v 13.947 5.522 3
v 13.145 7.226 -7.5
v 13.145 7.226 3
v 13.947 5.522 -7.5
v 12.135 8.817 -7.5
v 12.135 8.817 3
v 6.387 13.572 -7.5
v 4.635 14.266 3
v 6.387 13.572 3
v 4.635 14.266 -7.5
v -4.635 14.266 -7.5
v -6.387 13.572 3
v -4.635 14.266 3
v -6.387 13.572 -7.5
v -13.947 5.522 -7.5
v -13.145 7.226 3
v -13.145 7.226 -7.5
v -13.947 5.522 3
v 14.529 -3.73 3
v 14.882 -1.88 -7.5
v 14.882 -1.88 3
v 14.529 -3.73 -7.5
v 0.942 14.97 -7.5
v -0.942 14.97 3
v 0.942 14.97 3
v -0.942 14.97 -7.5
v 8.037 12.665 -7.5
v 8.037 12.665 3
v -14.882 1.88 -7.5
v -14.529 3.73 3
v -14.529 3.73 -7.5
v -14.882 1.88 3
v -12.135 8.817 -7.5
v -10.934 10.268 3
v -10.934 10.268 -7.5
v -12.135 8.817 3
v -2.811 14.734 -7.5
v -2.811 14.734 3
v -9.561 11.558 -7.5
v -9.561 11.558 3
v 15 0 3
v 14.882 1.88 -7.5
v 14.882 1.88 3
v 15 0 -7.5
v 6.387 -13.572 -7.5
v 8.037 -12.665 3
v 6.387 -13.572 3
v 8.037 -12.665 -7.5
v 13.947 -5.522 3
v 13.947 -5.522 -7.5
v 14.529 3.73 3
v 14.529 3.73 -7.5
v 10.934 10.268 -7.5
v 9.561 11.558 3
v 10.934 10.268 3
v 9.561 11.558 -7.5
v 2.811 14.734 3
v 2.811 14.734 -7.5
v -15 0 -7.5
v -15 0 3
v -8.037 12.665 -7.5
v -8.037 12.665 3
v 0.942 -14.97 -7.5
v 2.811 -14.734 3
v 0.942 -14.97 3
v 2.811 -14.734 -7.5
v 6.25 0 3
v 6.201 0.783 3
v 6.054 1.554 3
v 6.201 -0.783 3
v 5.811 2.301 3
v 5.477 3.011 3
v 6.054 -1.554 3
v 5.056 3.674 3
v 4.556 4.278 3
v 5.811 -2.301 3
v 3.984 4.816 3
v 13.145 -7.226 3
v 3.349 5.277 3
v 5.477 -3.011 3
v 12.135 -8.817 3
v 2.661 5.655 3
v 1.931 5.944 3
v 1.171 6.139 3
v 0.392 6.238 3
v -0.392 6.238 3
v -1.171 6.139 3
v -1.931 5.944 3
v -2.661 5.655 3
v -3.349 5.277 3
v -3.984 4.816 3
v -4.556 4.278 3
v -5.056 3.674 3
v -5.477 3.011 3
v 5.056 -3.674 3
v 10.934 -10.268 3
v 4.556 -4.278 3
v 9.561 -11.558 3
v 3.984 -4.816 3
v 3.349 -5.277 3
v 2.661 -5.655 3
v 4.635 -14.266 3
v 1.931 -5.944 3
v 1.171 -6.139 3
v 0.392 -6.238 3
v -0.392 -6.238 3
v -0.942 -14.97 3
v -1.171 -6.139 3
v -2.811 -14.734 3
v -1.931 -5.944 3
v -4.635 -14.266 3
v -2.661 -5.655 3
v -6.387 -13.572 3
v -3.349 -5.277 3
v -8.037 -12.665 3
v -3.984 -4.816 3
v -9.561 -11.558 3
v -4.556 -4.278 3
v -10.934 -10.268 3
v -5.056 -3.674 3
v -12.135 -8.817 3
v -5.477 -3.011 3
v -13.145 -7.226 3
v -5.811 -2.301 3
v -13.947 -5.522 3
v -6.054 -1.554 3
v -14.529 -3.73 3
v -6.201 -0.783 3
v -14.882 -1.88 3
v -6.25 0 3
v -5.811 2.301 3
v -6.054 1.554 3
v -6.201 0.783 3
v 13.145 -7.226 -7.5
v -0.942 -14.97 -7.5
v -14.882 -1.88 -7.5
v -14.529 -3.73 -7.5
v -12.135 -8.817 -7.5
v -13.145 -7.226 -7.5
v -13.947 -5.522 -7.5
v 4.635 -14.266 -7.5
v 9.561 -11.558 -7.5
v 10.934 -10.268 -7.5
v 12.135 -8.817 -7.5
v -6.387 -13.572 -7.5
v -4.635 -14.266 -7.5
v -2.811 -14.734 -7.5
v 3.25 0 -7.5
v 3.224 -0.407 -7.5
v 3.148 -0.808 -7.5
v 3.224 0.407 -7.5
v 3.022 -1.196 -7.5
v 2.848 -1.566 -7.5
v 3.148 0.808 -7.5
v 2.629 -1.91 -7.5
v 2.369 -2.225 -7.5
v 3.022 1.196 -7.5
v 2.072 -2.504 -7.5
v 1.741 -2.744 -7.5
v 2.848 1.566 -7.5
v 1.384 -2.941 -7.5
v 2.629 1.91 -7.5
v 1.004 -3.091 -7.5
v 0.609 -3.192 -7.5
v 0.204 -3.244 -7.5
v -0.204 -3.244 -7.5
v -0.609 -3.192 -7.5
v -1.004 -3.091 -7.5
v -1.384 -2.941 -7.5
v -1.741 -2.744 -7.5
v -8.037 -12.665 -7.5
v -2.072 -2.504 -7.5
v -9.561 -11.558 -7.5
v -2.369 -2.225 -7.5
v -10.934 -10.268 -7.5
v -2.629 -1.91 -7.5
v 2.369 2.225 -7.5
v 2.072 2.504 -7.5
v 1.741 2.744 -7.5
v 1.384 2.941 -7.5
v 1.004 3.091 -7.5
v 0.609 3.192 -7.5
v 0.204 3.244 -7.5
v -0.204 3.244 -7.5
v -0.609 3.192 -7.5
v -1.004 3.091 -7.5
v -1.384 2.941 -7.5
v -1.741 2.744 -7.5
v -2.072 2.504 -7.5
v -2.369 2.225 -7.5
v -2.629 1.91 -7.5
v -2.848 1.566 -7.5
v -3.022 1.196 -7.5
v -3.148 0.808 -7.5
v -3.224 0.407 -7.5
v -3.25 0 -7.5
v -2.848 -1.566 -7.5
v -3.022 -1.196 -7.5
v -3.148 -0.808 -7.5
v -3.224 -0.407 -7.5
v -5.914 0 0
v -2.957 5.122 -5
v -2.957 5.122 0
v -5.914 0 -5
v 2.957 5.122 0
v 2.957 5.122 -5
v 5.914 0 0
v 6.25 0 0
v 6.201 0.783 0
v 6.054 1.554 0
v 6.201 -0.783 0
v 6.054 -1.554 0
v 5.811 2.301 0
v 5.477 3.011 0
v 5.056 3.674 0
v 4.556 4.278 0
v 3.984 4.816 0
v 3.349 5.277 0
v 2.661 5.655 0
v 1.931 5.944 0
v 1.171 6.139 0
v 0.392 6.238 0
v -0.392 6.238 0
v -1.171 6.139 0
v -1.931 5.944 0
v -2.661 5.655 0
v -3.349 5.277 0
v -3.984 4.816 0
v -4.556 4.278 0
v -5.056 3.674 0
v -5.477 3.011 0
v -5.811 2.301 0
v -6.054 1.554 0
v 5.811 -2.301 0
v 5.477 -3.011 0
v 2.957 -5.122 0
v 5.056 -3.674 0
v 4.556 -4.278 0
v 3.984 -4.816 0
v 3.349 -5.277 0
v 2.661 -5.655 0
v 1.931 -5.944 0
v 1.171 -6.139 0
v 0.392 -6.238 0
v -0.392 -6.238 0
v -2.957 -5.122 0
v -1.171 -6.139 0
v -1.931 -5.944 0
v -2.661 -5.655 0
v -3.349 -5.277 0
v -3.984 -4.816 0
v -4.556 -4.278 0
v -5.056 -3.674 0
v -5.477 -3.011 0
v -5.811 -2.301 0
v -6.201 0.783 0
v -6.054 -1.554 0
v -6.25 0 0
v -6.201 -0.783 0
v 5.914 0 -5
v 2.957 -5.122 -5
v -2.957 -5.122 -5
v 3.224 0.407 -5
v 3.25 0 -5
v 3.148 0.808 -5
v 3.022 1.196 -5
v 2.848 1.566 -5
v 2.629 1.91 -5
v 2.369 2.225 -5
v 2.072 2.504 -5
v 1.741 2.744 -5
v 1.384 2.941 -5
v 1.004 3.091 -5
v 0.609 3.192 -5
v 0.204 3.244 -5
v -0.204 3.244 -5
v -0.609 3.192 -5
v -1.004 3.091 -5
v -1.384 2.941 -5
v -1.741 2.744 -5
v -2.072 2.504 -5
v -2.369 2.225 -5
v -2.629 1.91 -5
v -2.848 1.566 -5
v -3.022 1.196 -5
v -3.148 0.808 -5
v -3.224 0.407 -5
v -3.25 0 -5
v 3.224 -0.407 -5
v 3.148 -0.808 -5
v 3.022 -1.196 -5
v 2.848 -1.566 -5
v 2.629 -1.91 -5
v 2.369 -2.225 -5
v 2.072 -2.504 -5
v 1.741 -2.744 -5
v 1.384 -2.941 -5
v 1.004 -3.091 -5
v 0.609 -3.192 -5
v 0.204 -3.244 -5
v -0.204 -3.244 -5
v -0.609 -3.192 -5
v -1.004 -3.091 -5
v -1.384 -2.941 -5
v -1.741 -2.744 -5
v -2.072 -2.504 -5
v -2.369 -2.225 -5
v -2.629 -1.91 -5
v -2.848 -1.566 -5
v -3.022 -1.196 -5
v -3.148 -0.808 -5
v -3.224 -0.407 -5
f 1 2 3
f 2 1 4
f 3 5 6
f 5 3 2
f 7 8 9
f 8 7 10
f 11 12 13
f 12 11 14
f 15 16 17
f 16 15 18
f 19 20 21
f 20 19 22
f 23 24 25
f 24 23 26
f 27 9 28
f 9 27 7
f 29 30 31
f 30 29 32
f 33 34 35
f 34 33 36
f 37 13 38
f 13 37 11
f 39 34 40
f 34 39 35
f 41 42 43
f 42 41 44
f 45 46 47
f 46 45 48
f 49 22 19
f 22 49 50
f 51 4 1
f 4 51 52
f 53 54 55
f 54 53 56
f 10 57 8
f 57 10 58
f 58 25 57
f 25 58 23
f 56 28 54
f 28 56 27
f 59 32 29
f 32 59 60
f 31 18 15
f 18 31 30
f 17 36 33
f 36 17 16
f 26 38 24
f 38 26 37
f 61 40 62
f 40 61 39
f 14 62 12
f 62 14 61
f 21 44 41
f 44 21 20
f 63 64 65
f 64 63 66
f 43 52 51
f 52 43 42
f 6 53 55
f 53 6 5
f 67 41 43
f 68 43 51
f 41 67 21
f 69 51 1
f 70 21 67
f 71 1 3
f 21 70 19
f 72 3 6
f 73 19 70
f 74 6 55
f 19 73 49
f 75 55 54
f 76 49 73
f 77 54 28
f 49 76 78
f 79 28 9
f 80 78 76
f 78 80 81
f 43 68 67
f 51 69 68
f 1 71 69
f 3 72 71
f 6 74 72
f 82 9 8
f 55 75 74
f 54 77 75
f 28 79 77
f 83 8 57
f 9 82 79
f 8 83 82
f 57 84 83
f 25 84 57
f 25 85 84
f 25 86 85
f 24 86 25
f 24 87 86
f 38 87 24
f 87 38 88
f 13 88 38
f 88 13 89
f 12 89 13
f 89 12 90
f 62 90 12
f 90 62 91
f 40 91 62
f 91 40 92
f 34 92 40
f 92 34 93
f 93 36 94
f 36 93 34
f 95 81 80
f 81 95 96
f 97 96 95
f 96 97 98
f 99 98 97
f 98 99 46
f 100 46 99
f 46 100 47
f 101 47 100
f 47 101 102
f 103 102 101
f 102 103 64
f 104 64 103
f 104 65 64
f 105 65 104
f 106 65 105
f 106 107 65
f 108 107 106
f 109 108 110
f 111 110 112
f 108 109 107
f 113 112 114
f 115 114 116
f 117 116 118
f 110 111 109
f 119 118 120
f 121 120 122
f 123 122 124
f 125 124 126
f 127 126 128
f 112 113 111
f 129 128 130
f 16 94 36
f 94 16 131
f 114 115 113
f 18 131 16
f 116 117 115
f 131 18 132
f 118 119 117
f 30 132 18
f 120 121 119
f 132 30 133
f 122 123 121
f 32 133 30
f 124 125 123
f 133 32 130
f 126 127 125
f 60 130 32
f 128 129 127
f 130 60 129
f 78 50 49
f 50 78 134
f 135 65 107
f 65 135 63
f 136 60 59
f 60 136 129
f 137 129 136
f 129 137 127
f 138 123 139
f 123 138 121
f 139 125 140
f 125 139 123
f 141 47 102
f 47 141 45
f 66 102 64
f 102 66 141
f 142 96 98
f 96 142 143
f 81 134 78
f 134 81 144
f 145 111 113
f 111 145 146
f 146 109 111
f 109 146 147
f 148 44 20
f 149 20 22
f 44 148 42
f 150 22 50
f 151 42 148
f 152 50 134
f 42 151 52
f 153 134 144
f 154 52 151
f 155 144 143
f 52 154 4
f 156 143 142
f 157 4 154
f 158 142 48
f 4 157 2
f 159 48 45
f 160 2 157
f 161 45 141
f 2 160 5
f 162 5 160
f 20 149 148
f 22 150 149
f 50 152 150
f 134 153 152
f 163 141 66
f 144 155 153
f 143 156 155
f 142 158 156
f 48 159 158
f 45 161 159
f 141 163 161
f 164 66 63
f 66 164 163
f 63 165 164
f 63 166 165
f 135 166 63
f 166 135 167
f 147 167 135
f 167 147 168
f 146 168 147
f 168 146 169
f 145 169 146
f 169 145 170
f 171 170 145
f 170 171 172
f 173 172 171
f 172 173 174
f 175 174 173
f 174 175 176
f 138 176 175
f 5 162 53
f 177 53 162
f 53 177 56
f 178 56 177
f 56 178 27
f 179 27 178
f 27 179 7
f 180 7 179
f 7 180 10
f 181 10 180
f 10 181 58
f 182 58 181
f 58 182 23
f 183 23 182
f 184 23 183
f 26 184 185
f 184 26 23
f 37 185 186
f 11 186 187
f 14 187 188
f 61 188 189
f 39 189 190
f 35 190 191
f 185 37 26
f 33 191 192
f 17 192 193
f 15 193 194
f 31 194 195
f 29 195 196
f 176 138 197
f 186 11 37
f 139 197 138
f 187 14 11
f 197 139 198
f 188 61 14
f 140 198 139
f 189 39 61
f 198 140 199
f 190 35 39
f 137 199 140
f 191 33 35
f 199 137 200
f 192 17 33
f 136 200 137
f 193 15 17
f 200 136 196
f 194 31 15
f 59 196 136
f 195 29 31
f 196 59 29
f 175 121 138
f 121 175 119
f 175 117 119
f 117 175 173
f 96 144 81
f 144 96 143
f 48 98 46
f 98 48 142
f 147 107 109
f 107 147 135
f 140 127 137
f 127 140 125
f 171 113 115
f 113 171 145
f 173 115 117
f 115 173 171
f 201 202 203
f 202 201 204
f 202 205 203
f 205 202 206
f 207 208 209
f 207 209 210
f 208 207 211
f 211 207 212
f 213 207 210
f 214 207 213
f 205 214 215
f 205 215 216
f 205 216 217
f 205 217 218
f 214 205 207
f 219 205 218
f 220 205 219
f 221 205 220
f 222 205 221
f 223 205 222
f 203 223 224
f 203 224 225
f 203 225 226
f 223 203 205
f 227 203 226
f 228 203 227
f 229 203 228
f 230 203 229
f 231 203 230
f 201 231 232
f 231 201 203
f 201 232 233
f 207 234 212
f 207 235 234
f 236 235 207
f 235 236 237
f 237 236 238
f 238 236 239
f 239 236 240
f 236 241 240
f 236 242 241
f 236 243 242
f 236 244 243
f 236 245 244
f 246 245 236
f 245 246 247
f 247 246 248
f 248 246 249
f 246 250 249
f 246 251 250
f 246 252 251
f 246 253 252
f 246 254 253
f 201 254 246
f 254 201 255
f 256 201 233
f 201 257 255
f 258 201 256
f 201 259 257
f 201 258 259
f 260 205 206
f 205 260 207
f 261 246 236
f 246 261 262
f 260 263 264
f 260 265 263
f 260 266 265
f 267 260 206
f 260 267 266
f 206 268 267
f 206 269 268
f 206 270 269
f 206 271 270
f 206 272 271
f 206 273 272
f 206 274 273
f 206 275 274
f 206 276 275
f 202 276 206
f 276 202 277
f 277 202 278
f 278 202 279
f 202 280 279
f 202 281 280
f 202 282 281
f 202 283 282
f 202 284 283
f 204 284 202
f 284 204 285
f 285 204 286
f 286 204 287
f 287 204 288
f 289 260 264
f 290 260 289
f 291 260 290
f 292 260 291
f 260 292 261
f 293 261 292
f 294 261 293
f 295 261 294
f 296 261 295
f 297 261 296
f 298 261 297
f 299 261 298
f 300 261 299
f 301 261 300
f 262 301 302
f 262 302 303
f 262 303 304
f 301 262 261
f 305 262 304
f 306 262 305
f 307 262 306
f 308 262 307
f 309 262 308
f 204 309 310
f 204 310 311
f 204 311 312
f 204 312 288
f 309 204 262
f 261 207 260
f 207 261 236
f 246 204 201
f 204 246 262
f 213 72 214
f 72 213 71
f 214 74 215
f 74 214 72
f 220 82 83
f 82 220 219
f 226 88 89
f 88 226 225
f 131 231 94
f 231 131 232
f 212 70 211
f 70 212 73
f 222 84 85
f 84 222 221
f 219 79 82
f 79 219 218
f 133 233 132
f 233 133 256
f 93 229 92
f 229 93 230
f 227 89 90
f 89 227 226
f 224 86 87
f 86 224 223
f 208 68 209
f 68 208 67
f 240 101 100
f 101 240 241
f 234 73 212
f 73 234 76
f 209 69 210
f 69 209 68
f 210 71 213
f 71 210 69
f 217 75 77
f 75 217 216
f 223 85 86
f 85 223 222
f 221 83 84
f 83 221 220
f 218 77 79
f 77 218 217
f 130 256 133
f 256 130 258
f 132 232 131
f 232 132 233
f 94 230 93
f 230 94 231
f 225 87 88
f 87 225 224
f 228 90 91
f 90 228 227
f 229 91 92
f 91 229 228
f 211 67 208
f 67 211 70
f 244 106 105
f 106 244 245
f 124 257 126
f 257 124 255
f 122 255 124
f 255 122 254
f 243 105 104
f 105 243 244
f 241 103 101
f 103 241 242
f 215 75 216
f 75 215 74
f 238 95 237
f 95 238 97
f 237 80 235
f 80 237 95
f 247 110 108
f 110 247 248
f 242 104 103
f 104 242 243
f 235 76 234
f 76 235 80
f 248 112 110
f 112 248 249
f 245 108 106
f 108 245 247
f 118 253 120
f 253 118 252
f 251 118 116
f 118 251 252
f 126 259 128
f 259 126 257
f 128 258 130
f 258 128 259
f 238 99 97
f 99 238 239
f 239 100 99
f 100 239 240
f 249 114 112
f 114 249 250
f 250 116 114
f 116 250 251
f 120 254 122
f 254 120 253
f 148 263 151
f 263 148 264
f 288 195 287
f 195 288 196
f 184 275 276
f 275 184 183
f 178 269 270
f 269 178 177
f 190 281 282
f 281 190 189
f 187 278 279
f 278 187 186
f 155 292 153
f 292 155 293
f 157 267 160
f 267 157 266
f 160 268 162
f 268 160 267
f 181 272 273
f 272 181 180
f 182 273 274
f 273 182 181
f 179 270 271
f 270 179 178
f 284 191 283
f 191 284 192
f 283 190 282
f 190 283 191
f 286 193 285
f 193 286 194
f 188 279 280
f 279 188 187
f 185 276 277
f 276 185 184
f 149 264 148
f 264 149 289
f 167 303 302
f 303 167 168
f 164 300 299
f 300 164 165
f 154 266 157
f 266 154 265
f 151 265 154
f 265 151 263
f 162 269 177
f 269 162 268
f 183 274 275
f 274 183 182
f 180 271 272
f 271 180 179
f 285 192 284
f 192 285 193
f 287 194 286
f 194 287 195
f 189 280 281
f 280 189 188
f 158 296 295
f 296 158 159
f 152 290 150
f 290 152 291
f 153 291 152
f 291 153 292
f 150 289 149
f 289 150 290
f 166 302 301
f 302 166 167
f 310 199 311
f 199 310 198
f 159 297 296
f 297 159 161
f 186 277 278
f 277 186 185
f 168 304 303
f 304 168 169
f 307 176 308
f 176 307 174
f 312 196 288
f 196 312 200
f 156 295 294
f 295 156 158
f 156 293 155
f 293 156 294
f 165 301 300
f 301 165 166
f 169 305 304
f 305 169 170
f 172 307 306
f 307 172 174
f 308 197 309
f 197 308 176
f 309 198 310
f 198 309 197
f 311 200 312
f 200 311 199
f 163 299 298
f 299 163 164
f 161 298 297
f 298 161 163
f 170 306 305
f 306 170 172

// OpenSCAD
$fn = 50;

difference() {
	union() {
		translate(v = [0, 0, -7.5]) {
			cylinder(h = 10.5, r = 15.0);
		}
		#translate(v = [0, 0, -9.0]) {
			cylinder(h = 9, r = 2.875);
		}
	}
	union() {
		translate(v = [0, 0, 0]) {
			rotate(a = [0, 0, 0]) {
				difference() {
					union() {
						translate(v = [0, 0, -5]) {
							linear_extrude(height = 5) {
								polygon(points = [[5.914249999999999, 0.0], [2.957125, 5.1218907443321156], [-2.9571249999999982, 5.1218907443321156], [-5.914249999999999, 7.242867331857232e-16], [-2.9571250000000022, -5.121890744332115], [2.9571249999999956, -5.121890744332118]]);
							}
						}
					}
					union();
				}
			}
		}
		#cylinder(h = 3, r = 6.25);
		#translate(v = [0, 0, -100.0]) {
			cylinder(h = 200, r = 3.25);
		}
	}
}
